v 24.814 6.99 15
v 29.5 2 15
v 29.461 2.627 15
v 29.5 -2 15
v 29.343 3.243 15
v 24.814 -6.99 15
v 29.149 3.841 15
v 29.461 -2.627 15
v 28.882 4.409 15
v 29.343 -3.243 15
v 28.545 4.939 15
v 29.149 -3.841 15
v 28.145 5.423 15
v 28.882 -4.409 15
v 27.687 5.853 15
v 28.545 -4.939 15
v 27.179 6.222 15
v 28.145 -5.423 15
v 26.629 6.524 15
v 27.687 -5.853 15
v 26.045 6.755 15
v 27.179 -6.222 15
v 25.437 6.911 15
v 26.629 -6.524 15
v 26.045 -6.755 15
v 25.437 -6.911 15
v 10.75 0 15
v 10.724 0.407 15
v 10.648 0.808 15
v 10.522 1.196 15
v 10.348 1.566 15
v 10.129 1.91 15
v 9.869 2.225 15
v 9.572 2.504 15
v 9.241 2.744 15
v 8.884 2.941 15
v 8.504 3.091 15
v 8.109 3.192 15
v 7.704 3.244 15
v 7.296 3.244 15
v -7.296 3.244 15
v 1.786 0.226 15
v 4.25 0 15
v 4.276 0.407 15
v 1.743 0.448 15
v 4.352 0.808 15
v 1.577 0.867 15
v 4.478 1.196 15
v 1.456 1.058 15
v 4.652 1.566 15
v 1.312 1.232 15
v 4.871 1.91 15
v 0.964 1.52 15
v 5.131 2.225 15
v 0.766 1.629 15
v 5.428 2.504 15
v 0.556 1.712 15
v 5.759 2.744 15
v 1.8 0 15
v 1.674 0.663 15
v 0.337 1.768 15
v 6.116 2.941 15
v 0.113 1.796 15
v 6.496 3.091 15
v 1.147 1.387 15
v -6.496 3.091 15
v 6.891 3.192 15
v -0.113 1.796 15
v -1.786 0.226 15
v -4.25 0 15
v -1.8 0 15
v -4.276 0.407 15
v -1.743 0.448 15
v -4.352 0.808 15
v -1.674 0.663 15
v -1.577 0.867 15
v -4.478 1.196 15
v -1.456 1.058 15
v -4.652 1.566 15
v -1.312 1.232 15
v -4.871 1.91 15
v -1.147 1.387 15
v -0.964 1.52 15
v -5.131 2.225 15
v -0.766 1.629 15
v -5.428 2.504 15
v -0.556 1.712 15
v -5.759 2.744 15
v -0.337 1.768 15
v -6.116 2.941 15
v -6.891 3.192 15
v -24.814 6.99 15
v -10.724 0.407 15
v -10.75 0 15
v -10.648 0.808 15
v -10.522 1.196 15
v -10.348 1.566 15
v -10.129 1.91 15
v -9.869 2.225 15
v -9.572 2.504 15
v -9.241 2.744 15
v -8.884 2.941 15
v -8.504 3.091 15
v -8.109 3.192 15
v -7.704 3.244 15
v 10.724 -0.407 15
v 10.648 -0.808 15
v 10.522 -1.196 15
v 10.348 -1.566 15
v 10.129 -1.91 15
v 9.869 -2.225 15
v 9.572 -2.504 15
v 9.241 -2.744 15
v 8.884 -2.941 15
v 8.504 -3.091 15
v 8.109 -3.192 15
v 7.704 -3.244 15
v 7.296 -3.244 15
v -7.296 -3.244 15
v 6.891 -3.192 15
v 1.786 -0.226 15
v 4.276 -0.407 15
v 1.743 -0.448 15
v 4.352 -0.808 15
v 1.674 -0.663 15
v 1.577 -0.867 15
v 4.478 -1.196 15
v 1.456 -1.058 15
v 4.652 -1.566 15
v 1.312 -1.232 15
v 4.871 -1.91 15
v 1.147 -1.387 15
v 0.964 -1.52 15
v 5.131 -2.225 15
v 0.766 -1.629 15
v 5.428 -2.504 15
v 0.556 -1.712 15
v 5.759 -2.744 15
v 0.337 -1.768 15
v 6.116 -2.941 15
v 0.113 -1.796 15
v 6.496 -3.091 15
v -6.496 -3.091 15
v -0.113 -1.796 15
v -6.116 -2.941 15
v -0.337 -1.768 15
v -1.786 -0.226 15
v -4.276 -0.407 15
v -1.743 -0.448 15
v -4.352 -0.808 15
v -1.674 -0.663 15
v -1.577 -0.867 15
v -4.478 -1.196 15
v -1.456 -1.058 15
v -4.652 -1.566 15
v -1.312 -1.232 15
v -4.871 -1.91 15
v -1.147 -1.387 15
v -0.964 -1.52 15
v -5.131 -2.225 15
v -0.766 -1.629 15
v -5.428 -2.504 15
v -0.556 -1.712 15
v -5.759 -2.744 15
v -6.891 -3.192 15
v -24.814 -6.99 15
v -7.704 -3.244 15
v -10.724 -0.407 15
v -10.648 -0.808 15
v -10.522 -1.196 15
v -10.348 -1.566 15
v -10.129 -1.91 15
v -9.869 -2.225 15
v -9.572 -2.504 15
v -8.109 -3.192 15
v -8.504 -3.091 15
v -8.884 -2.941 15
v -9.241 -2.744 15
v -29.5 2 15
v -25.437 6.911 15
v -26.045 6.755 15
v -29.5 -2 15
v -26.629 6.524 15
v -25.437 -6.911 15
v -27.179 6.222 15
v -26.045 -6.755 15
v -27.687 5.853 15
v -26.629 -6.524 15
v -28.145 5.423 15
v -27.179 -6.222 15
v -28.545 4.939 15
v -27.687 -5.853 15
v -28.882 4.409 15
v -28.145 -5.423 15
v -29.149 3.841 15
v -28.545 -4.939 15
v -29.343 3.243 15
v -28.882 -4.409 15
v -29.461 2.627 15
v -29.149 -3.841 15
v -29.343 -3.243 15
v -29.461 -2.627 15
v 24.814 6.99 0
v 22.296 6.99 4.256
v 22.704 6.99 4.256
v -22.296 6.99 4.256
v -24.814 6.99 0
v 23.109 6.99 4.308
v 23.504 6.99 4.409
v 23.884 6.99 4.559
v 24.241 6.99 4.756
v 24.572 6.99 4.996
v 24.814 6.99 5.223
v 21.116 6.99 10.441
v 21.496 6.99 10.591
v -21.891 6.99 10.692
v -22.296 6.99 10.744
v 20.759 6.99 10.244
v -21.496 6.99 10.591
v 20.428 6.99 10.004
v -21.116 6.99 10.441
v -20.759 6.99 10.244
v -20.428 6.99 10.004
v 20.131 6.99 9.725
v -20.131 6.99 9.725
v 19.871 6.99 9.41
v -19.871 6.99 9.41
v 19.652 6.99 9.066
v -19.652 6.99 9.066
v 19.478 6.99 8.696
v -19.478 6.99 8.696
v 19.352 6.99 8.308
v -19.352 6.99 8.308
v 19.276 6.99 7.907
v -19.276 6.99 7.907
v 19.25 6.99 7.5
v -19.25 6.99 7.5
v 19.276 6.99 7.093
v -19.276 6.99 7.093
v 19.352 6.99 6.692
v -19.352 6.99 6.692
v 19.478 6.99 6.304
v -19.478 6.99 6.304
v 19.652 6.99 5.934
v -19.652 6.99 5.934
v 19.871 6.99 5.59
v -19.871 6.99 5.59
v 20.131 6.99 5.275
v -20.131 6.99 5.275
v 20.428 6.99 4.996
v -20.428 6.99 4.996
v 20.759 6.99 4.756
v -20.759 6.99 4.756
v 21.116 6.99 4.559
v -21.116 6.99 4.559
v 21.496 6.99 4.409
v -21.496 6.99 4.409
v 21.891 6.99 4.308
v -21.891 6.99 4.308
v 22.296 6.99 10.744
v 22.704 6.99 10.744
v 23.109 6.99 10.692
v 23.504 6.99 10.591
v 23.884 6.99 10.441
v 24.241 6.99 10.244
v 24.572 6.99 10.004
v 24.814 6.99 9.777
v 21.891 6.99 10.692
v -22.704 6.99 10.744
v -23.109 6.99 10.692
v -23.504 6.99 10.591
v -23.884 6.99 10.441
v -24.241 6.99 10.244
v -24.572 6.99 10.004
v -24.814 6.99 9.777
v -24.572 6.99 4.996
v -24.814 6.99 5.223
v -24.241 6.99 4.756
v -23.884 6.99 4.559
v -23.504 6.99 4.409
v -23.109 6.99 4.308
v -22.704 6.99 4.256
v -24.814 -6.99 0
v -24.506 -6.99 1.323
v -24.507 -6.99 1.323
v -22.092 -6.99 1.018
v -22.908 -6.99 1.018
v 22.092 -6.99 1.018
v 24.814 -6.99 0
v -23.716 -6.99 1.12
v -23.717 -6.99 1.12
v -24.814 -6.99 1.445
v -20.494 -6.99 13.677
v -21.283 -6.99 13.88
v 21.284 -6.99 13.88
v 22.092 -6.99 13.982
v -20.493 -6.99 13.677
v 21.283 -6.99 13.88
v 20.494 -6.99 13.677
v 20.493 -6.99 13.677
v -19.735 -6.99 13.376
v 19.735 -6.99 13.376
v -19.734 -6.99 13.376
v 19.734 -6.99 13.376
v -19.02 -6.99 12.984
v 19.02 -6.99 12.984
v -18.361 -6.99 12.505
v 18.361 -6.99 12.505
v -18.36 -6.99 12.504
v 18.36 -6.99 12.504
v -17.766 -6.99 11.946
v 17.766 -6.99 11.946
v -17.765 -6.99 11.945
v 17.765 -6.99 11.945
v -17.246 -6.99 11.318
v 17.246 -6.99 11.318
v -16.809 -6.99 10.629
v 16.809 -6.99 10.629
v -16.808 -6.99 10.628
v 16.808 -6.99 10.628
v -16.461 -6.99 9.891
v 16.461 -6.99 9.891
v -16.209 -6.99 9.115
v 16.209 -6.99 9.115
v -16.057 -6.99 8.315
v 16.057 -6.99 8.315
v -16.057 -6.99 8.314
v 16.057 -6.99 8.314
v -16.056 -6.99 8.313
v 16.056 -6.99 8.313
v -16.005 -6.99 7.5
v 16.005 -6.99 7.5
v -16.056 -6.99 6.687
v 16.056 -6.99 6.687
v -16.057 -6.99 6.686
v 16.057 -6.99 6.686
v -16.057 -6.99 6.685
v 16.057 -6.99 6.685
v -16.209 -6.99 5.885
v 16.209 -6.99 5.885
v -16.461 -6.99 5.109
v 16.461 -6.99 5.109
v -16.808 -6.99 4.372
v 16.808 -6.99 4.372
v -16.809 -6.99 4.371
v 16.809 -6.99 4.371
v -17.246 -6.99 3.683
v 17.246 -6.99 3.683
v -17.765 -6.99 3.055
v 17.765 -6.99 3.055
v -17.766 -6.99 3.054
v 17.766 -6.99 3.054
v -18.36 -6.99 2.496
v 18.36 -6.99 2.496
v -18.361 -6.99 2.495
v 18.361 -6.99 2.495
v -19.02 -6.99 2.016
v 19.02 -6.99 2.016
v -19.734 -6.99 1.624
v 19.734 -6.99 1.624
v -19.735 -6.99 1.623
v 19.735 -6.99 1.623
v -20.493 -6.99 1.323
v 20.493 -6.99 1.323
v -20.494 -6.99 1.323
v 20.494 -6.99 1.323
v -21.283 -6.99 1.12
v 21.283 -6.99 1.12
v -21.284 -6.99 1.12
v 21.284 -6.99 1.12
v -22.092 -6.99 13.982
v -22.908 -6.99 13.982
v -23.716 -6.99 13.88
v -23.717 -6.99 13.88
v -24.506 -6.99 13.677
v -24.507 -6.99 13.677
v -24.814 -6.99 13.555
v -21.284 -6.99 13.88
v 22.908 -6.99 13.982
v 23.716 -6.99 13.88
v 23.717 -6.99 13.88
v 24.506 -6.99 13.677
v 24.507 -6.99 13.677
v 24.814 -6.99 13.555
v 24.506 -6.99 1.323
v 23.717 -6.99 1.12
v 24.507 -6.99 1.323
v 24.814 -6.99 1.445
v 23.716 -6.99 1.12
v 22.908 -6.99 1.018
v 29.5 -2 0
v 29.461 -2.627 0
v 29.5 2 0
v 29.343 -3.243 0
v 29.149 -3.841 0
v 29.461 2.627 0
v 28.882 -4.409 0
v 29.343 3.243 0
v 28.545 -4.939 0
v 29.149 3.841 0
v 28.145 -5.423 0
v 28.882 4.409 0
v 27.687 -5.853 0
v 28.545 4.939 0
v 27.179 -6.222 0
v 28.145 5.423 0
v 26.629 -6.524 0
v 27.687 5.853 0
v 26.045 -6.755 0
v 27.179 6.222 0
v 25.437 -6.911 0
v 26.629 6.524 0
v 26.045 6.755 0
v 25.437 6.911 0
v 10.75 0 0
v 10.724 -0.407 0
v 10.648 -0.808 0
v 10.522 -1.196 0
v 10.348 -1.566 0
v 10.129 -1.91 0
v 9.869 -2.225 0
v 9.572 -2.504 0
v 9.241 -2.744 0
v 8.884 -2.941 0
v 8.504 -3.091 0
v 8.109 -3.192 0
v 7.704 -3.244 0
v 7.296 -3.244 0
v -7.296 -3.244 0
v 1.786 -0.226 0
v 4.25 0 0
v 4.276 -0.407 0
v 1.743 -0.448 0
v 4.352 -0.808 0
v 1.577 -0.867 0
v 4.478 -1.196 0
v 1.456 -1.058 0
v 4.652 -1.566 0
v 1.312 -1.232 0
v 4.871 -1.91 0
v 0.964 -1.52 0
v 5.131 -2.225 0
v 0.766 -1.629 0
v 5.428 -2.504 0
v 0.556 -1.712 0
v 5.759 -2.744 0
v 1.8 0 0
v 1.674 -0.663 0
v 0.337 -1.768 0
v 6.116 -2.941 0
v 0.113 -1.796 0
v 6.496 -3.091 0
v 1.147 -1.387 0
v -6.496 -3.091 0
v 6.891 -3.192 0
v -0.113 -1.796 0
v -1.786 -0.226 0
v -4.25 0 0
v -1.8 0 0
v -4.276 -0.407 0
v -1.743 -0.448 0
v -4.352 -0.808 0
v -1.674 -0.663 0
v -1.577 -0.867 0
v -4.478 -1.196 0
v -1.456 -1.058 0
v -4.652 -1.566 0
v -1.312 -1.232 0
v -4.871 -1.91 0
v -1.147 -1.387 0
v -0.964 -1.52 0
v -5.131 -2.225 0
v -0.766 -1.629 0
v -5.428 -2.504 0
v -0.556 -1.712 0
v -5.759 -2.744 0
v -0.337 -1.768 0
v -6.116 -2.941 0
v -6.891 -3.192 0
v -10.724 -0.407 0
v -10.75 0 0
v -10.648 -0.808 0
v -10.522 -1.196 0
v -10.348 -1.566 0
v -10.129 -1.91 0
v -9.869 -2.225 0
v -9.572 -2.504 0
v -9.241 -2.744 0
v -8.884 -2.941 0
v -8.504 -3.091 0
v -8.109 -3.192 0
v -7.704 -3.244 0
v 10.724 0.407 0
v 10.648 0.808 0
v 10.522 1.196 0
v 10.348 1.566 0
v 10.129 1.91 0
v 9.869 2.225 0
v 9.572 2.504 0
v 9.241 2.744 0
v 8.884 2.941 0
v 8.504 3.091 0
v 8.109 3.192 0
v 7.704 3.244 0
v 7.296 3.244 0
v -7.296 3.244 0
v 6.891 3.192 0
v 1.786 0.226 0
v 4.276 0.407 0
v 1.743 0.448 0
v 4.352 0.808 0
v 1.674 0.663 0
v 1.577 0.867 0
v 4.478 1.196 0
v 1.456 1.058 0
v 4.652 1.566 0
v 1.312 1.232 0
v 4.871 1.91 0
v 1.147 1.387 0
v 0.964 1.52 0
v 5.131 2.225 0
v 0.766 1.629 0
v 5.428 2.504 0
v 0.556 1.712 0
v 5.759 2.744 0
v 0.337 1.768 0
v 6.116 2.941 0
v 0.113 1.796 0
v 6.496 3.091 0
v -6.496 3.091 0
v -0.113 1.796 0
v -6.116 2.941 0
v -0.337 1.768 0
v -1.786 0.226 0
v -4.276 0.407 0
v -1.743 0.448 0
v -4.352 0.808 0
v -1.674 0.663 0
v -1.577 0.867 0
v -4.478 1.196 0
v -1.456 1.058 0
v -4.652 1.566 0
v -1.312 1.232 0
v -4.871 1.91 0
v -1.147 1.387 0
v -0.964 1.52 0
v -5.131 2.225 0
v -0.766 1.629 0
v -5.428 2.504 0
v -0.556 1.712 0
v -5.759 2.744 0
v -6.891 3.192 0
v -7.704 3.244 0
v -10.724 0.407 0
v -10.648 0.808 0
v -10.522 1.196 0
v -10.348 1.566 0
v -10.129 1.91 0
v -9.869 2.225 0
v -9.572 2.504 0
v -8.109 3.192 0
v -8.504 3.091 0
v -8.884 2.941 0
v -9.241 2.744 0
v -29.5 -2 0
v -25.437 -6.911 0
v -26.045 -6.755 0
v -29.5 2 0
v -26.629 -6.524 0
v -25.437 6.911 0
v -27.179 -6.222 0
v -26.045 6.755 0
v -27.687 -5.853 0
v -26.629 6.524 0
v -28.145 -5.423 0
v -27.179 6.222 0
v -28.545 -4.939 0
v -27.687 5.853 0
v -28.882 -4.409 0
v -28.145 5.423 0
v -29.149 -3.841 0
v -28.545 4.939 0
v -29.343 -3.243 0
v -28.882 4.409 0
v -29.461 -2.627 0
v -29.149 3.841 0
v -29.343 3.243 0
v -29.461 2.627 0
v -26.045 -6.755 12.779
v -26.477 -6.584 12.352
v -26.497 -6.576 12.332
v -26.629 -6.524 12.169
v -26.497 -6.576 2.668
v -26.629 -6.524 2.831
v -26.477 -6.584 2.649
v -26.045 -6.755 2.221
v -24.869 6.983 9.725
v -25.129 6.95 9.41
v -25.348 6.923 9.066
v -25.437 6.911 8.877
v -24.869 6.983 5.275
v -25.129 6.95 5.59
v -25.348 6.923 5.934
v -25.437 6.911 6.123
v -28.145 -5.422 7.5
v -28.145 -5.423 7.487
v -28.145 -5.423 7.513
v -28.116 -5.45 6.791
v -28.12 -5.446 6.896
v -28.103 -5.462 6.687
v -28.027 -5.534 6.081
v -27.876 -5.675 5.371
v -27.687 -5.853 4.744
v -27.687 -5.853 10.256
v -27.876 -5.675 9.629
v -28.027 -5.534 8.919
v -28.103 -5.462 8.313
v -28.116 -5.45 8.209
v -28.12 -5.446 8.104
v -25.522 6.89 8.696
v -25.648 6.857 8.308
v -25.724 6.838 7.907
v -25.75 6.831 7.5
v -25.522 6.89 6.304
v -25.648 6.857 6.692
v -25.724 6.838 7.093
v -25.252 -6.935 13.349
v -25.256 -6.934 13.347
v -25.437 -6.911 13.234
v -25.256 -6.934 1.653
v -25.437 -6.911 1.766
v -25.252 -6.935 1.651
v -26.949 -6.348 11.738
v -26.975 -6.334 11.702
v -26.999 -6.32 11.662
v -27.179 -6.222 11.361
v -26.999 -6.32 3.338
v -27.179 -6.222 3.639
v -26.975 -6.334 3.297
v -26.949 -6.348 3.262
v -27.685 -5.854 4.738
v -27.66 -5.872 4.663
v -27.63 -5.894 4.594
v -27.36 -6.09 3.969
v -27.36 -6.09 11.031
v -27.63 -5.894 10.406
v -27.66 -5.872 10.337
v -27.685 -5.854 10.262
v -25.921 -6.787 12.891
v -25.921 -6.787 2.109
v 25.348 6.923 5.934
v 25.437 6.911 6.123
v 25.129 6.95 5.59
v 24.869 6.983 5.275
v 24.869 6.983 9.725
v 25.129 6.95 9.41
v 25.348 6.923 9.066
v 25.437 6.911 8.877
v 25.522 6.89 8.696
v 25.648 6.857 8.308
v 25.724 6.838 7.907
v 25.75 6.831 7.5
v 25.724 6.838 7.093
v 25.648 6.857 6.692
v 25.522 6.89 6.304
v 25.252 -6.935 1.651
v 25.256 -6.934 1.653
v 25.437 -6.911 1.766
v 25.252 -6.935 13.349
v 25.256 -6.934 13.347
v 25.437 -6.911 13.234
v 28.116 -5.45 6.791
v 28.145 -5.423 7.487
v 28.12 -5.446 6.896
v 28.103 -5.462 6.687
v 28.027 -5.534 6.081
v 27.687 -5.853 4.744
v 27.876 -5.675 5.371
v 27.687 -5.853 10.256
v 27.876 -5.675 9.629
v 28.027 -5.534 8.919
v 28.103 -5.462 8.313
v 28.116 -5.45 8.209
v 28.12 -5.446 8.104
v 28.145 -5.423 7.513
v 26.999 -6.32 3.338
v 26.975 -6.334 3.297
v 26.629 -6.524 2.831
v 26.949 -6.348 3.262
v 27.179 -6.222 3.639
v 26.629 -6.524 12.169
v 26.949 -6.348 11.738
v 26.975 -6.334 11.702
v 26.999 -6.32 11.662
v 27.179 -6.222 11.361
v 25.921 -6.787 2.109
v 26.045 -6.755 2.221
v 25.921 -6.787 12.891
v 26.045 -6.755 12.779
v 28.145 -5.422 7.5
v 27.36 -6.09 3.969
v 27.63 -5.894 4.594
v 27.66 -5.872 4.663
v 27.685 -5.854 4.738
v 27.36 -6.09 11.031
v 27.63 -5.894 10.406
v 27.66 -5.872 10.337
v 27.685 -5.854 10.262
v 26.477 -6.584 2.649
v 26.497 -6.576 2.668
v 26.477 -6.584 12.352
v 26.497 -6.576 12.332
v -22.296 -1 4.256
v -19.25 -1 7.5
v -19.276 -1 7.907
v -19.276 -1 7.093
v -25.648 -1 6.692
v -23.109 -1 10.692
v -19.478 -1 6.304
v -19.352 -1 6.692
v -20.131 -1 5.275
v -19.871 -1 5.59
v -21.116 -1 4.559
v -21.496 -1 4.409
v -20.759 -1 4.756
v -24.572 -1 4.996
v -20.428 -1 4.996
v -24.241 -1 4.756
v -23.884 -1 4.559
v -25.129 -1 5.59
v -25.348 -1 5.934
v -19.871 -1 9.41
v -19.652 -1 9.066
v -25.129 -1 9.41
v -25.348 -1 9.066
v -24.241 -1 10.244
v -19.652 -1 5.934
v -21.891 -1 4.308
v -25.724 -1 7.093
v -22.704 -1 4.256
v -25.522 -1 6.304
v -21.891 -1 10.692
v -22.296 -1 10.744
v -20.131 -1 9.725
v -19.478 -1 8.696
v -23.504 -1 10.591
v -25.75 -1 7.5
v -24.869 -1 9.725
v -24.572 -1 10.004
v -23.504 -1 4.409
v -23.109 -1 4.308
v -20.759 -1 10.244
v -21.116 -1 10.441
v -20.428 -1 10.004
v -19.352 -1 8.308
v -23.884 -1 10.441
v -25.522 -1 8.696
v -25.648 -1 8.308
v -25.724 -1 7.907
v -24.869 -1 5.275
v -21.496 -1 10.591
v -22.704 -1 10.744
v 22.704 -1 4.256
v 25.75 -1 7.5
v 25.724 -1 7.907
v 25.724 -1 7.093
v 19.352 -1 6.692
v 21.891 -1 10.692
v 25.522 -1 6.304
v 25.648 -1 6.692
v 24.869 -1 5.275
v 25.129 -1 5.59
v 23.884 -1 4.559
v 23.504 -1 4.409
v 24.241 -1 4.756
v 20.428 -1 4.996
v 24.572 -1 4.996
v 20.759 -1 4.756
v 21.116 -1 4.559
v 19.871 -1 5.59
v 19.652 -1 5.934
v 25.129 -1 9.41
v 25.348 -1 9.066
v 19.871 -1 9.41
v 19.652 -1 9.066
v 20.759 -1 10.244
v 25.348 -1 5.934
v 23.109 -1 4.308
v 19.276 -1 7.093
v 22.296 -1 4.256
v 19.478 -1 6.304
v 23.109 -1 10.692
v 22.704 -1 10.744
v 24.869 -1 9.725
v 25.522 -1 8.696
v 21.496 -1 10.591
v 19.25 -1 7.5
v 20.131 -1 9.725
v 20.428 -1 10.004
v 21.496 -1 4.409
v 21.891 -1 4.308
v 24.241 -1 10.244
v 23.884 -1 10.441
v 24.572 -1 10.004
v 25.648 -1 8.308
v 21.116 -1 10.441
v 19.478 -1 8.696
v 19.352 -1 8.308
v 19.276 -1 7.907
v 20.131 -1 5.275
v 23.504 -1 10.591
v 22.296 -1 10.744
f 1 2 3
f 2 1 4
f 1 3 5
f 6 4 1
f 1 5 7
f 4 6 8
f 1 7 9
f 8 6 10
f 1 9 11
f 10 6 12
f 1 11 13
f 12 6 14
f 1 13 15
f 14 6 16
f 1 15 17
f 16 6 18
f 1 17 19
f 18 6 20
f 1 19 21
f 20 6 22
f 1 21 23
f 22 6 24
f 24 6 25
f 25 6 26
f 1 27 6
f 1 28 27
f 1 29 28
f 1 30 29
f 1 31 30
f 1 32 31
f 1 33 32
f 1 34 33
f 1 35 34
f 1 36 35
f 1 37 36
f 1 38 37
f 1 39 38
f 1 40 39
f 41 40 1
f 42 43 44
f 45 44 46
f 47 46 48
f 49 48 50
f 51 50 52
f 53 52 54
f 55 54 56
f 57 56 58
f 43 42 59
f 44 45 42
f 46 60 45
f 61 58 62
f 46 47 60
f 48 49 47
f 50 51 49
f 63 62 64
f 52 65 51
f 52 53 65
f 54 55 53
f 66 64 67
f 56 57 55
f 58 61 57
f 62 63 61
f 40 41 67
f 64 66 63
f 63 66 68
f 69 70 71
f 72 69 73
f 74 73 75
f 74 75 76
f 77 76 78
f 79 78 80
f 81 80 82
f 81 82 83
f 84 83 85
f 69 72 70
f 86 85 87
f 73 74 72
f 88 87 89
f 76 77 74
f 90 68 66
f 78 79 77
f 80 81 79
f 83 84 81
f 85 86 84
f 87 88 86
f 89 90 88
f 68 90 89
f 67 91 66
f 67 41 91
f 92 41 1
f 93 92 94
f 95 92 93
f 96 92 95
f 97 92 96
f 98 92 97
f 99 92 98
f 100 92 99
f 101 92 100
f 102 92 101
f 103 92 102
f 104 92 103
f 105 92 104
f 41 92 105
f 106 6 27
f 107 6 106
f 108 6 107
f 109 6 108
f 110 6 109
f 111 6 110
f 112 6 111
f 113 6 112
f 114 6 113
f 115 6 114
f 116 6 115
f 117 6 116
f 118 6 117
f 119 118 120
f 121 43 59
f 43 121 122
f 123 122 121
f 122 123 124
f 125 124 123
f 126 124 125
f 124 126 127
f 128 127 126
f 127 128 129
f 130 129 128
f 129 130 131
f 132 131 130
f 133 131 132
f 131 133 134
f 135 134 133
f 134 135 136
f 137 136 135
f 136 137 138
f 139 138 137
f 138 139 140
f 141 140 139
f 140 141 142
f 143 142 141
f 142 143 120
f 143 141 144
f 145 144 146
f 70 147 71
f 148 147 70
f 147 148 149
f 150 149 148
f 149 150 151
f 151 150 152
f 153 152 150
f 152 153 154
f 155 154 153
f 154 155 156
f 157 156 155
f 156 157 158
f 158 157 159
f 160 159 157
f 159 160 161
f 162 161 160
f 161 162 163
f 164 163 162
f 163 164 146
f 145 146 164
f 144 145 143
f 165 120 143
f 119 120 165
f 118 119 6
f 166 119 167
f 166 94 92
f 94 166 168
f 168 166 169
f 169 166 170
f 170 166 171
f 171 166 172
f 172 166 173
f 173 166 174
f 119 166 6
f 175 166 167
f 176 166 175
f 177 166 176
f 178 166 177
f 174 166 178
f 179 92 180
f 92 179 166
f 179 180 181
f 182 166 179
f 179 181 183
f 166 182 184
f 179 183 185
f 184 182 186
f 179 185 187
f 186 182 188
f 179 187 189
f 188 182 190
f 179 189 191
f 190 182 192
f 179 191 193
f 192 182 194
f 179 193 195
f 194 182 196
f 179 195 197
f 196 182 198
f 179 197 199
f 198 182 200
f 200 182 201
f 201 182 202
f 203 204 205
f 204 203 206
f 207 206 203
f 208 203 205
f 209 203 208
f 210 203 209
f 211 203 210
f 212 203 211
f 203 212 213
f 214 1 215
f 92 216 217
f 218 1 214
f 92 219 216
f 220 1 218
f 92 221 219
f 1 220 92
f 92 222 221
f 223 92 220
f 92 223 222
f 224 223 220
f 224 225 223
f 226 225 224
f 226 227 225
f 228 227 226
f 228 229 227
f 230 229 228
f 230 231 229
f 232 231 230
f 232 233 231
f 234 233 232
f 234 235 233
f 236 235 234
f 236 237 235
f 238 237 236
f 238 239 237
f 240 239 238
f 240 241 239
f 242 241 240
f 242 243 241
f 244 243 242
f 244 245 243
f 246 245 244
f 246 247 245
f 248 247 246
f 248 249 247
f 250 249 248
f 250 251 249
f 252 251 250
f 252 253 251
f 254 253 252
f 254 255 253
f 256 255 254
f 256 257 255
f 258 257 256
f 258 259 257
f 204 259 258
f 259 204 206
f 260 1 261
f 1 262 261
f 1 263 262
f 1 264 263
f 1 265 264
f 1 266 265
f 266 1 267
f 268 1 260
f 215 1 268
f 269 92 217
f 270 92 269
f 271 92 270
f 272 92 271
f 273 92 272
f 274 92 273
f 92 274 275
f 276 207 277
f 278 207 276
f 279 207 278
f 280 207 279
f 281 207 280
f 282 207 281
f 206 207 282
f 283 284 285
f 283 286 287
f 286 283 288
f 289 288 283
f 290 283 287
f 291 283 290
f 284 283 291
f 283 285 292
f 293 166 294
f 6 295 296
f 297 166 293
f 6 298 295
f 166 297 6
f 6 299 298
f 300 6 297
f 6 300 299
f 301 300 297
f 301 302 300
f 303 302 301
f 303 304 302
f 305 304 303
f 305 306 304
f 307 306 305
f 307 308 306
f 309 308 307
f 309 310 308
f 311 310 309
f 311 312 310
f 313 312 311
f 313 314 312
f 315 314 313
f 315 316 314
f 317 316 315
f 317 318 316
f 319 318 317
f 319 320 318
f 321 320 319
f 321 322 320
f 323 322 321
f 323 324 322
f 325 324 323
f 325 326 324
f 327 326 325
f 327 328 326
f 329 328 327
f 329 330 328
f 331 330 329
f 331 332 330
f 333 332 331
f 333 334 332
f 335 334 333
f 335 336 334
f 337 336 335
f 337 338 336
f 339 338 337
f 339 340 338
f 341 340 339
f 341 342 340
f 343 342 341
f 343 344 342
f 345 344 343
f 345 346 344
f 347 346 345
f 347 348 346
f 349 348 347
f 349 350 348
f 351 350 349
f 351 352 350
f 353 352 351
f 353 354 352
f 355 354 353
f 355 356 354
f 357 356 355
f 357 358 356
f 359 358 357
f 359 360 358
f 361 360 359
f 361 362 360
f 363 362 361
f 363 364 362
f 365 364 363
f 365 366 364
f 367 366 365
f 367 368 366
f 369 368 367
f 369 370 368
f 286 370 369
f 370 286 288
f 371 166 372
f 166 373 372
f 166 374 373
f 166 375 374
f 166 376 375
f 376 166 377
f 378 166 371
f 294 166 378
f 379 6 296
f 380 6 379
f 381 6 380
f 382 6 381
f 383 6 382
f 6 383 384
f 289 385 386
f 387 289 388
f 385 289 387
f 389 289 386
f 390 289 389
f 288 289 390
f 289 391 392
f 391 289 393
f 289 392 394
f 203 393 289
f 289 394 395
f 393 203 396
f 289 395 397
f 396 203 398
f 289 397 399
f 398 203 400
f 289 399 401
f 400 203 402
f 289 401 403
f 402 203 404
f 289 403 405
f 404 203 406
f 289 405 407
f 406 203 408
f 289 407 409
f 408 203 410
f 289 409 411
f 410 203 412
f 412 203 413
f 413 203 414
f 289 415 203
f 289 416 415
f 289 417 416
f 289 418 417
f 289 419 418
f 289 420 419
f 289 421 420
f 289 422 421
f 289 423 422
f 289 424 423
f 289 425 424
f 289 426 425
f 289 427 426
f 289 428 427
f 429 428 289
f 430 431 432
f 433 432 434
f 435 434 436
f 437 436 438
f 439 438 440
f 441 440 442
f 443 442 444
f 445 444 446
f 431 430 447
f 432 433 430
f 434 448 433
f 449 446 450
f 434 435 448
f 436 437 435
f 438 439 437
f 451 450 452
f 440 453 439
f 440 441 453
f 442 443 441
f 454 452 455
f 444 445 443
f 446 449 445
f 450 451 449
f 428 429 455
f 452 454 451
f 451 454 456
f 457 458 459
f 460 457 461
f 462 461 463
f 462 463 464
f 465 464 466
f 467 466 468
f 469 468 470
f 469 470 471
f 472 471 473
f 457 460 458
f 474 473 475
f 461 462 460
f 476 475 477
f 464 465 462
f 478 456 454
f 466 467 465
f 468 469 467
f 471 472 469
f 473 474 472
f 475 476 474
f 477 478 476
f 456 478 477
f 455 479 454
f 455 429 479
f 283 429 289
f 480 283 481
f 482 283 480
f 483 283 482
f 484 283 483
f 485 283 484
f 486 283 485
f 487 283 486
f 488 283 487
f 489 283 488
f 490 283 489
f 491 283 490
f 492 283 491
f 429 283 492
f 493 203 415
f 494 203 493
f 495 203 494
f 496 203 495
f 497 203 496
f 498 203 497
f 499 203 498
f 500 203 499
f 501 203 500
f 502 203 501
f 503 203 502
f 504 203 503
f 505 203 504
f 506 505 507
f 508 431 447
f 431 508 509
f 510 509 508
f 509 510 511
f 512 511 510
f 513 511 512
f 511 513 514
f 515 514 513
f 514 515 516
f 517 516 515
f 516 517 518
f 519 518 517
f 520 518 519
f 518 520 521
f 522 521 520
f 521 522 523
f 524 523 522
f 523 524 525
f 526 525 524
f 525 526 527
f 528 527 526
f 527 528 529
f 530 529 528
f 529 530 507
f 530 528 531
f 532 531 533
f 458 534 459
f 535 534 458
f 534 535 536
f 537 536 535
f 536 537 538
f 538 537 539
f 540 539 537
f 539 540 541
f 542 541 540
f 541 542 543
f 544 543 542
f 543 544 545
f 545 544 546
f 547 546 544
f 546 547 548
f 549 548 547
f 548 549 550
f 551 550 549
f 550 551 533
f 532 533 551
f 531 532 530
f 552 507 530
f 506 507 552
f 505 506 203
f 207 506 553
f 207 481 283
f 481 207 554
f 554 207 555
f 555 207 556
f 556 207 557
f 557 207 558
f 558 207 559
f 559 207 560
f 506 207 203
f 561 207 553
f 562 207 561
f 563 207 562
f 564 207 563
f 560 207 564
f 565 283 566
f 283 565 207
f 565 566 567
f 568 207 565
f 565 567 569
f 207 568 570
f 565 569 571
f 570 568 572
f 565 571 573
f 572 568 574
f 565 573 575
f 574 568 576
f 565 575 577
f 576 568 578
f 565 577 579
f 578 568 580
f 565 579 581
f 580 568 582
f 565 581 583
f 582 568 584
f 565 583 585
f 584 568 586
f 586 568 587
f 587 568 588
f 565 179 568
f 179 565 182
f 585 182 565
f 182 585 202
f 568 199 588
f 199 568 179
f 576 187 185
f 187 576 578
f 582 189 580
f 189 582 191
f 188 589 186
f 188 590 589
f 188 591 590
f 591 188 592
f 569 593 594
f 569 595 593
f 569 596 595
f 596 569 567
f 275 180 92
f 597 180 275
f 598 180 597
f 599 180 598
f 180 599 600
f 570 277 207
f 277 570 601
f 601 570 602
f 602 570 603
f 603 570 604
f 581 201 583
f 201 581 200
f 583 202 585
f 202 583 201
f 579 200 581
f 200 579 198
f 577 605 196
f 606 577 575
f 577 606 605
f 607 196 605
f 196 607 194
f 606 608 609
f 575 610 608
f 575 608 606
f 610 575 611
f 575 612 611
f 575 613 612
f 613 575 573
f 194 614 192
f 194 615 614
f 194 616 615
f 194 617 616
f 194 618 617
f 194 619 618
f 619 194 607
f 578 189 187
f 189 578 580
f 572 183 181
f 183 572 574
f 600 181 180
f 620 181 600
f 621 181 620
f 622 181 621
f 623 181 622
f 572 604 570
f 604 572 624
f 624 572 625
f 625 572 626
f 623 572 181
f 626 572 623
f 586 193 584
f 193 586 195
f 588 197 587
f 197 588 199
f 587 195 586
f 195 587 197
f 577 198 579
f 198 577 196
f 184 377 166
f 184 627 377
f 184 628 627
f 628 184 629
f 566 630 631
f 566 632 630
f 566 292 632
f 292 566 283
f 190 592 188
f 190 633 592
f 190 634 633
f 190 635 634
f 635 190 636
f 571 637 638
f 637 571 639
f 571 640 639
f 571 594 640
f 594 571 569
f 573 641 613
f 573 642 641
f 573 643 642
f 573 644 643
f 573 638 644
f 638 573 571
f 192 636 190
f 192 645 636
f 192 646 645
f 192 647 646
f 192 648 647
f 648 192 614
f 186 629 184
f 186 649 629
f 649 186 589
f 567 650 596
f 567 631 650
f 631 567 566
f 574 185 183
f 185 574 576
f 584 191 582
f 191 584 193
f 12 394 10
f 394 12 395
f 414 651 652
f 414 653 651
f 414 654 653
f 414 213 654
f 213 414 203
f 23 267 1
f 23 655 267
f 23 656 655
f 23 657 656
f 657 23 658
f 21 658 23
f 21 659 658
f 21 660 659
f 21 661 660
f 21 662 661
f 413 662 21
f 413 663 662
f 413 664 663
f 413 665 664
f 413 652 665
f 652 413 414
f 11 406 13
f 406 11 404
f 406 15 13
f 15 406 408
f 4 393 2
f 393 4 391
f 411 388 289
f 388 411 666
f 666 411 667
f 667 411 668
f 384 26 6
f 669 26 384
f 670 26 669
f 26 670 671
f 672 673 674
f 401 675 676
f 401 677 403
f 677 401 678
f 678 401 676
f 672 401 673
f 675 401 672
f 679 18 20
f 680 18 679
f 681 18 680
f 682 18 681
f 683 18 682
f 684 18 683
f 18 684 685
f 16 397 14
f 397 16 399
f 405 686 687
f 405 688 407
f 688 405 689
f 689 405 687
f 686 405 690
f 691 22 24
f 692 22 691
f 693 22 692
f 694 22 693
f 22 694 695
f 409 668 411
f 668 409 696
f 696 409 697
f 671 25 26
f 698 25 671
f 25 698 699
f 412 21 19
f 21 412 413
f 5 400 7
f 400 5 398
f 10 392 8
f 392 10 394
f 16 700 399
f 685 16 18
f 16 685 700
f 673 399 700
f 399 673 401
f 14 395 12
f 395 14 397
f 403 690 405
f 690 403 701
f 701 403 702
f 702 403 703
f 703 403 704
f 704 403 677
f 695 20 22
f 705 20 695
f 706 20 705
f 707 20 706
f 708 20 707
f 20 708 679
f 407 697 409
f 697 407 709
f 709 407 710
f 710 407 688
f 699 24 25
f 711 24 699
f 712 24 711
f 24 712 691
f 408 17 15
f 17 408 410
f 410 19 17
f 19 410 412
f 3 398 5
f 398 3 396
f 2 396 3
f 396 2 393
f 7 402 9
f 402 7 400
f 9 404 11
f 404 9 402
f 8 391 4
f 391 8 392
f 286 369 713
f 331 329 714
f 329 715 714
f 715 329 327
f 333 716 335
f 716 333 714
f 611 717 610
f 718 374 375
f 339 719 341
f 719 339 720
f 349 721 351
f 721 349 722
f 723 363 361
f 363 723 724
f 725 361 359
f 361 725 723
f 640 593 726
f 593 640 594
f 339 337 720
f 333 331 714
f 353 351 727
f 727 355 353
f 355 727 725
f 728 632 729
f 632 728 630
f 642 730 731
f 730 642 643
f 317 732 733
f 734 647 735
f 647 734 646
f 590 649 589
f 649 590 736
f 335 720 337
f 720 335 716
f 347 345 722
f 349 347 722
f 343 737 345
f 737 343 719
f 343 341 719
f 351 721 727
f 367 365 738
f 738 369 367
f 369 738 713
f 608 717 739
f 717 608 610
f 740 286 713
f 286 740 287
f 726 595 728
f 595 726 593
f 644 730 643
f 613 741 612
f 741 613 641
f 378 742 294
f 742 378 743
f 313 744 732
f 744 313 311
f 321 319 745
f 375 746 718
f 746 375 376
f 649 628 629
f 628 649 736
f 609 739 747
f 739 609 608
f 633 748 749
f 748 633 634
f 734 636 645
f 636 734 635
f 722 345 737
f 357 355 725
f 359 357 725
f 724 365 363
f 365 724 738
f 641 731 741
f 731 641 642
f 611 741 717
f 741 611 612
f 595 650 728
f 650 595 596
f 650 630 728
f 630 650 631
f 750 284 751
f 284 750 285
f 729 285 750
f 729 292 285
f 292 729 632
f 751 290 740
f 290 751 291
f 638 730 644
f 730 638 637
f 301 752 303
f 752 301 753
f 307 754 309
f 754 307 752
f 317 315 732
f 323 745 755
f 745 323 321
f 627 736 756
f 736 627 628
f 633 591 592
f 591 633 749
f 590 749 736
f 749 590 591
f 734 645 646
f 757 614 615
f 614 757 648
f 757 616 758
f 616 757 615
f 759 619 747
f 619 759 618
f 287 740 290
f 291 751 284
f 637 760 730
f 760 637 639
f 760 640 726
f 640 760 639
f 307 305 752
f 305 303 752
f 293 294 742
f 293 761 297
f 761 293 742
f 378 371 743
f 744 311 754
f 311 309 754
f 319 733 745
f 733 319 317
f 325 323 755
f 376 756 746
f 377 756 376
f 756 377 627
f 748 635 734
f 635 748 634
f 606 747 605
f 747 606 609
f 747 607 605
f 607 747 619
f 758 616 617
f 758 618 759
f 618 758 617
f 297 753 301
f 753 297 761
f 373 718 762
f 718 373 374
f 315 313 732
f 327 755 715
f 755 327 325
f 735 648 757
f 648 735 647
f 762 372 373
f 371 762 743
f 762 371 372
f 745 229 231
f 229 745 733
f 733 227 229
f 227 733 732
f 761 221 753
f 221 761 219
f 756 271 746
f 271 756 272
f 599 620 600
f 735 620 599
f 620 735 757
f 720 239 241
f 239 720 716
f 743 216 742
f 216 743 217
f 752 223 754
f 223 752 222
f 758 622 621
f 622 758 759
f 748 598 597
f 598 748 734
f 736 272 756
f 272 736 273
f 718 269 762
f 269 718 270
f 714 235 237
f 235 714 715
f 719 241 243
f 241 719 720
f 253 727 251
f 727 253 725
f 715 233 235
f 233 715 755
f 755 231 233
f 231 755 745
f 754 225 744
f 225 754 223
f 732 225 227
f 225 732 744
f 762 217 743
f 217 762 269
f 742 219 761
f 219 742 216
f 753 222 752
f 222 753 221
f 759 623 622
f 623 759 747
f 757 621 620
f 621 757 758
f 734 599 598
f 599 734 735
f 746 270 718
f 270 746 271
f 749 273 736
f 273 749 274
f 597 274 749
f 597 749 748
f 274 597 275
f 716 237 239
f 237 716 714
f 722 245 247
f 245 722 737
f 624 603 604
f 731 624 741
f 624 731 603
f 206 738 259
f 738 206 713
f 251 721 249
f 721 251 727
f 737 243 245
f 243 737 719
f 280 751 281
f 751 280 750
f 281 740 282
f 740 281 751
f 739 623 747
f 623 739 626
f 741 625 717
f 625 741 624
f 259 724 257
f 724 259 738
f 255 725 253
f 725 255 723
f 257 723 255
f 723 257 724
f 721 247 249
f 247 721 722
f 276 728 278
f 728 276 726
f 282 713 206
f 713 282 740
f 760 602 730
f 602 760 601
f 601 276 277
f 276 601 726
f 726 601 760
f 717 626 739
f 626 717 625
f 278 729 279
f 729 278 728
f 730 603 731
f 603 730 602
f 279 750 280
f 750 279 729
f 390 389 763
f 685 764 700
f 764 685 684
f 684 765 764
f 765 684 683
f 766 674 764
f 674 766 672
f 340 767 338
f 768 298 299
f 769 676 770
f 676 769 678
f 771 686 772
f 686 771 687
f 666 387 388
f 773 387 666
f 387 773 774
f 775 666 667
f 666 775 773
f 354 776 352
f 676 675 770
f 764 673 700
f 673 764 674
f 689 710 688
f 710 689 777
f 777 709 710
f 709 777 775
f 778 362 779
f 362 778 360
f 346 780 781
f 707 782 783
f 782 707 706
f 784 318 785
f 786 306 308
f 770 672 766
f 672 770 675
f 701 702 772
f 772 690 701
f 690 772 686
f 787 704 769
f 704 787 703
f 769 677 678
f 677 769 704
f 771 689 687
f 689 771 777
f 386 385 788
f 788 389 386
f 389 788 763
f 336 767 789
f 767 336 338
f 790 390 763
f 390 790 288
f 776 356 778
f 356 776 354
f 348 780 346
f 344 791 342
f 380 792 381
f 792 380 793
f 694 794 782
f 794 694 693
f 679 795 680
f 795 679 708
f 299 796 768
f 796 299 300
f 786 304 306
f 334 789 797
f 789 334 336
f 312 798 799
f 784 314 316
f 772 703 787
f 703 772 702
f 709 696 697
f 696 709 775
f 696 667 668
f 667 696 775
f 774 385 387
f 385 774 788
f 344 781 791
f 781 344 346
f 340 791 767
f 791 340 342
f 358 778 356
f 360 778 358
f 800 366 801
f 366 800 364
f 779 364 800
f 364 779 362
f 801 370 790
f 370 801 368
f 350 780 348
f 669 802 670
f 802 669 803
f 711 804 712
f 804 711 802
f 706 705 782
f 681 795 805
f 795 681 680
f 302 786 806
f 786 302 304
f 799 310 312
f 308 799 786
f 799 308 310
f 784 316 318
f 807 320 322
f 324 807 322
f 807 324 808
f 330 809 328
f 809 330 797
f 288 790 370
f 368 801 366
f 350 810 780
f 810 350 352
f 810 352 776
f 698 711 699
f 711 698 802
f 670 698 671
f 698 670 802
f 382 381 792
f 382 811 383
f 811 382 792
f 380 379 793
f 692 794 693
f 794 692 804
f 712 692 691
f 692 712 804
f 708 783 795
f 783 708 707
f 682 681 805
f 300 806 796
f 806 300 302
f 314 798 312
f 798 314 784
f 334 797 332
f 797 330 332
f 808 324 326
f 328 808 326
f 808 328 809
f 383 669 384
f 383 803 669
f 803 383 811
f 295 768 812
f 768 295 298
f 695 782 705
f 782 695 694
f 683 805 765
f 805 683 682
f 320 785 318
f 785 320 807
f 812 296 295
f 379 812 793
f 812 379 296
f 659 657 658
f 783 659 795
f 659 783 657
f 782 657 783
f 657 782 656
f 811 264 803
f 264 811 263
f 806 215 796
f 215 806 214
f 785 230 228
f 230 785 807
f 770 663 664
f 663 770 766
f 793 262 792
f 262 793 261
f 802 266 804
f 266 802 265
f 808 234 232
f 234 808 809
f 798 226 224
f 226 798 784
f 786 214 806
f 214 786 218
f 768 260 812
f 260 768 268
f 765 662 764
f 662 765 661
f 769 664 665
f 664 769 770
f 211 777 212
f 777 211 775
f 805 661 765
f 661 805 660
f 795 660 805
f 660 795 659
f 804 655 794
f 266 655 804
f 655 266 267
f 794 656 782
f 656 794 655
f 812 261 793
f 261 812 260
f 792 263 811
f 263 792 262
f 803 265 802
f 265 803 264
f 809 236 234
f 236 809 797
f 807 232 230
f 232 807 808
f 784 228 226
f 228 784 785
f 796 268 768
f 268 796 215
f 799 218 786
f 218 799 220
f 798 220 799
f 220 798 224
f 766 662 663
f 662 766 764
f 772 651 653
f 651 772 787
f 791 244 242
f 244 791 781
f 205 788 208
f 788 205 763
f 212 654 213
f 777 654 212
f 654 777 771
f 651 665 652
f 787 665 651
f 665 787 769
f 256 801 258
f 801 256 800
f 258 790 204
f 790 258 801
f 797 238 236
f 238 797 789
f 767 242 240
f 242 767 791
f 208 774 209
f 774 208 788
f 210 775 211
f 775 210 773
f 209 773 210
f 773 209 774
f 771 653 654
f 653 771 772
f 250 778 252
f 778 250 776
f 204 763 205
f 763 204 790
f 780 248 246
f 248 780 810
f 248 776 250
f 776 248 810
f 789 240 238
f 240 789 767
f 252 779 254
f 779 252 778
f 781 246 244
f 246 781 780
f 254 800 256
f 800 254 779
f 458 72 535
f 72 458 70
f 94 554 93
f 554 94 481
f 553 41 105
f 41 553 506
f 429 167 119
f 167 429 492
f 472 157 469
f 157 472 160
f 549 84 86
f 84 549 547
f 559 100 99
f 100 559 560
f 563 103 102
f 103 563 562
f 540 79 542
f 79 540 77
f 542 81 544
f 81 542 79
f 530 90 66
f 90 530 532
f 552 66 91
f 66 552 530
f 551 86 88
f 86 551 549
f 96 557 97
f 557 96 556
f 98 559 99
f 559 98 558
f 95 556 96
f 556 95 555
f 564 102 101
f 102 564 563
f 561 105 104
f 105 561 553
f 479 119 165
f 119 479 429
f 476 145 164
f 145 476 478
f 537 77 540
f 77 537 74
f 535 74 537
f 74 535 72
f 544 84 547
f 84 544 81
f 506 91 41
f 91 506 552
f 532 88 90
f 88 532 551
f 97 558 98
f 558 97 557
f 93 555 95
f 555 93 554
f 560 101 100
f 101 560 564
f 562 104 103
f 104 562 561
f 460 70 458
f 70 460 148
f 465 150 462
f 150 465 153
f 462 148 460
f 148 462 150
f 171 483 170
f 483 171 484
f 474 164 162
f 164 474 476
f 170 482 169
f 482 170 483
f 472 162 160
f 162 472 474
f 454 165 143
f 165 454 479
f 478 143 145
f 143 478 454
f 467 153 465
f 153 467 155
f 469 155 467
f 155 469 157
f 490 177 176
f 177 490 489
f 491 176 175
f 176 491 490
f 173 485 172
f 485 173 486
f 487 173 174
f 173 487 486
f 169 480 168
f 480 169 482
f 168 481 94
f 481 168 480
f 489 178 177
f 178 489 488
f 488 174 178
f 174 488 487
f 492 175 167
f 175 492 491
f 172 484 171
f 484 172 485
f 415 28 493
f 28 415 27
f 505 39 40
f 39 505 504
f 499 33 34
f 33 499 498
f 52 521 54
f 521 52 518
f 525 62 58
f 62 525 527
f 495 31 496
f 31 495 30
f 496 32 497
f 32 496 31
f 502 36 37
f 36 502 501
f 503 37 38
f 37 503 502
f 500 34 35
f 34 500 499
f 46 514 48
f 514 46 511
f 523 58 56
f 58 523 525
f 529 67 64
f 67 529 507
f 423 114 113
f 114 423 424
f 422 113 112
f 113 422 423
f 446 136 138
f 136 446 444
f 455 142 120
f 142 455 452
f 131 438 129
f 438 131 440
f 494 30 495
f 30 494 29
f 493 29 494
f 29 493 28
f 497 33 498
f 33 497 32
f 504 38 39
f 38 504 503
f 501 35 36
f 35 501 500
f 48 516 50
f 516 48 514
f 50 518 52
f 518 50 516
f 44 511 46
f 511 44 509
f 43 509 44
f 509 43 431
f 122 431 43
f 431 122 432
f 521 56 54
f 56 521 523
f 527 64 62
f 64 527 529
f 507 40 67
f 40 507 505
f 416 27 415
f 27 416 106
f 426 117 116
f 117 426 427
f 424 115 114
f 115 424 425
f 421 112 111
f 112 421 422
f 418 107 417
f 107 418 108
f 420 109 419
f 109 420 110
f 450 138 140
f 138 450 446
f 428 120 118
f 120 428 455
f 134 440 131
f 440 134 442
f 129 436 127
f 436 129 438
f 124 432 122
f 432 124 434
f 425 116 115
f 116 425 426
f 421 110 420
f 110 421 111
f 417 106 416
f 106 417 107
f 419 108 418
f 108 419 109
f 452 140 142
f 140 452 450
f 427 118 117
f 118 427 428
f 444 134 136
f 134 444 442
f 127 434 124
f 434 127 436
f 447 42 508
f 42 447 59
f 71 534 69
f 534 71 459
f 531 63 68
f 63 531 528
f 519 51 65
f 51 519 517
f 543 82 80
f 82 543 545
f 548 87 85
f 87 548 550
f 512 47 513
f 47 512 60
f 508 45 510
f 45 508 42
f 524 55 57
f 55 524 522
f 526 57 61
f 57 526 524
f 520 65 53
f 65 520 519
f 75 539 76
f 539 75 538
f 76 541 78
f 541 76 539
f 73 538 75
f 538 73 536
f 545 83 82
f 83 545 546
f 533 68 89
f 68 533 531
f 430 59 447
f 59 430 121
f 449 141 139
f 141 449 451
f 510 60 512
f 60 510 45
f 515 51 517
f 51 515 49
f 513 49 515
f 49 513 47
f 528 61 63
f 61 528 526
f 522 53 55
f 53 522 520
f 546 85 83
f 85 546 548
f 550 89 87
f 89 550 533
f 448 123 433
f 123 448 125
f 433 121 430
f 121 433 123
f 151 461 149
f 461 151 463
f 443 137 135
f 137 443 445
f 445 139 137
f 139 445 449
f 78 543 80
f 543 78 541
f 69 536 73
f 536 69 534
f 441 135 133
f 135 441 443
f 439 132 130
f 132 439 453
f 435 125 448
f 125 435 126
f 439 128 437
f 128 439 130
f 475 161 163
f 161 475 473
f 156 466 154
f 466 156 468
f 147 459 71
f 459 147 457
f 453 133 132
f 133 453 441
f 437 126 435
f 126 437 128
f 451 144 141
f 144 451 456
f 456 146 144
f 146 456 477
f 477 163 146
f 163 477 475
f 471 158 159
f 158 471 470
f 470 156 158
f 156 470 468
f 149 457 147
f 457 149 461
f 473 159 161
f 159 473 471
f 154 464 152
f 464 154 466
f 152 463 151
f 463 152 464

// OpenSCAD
$fn = 50;


difference() {
	union() {
		hull() {
			translate(v = [-9.5000000000, 2.0000000000, 0]) {
				cylinder(h = 15, r = 5);
			}
			translate(v = [9.5000000000, 2.0000000000, 0]) {
				cylinder(h = 15, r = 5);
			}
			translate(v = [-9.5000000000, -2.0000000000, 0]) {
				cylinder(h = 15, r = 5);
			}
			translate(v = [9.5000000000, -2.0000000000, 0]) {
				cylinder(h = 15, r = 5);
			}
		}
		translate(v = [-15.0000000000, 0.0000000000, 0]) {
			hull() {
				translate(v = [-9.5000000000, 2.0000000000, 0]) {
					cylinder(h = 15, r = 5);
				}
				translate(v = [9.5000000000, 2.0000000000, 0]) {
					cylinder(h = 15, r = 5);
				}
				translate(v = [-9.5000000000, -2.0000000000, 0]) {
					cylinder(h = 15, r = 5);
				}
				translate(v = [9.5000000000, -2.0000000000, 0]) {
					cylinder(h = 15, r = 5);
				}
			}
		}
		translate(v = [-15.0000000000, 0.0000000000, 0]) {
			hull() {
				translate(v = [-9.5000000000, 2.0000000000, 0]) {
					cylinder(h = 15, r = 5);
				}
				translate(v = [9.5000000000, 2.0000000000, 0]) {
					cylinder(h = 15, r = 5);
				}
				translate(v = [-9.5000000000, -2.0000000000, 0]) {
					cylinder(h = 15, r = 5);
				}
				translate(v = [9.5000000000, -2.0000000000, 0]) {
					cylinder(h = 15, r = 5);
				}
			}
		}
		translate(v = [15.0000000000, 0.0000000000, 0]) {
			hull() {
				translate(v = [-9.5000000000, 2.0000000000, 0]) {
					cylinder(h = 15, r = 5);
				}
				translate(v = [9.5000000000, 2.0000000000, 0]) {
					cylinder(h = 15, r = 5);
				}
				translate(v = [-9.5000000000, -2.0000000000, 0]) {
					cylinder(h = 15, r = 5);
				}
				translate(v = [9.5000000000, -2.0000000000, 0]) {
					cylinder(h = 15, r = 5);
				}
			}
		}
		translate(v = [15.0000000000, 0.0000000000, 0]) {
			hull() {
				translate(v = [-9.5000000000, 2.0000000000, 0]) {
					cylinder(h = 15, r = 5);
				}
				translate(v = [9.5000000000, 2.0000000000, 0]) {
					cylinder(h = 15, r = 5);
				}
				translate(v = [-9.5000000000, -2.0000000000, 0]) {
					cylinder(h = 15, r = 5);
				}
				translate(v = [9.5000000000, -2.0000000000, 0]) {
					cylinder(h = 15, r = 5);
				}
			}
		}
	}
	union() {
		translate(v = [-22.5000000000, -7.0000000000, 7.5000000000]) {
			rotate(a = [90, 0, 0]) {
				difference() {
					union() {
						#translate(v = [0, 0, -14.0000000000]) {
							cylinder(h = 14, r = 2.2500000000);
						}
						#translate(v = [0, 0, -6]) {
							cylinder(h = 6, r1 = 3.2500000000, r2 = 6.5000000000);
						}
						#translate(v = [0, 0, -14.0000000000]) {
							cylinder(h = 14, r = 3.2500000000);
						}
						#translate(v = [0, 0, -14.0000000000]) {
							cylinder(h = 14, r = 2.2500000000);
						}
					}
					union();
				}
			}
		}
		translate(v = [22.5000000000, -7.0000000000, 7.5000000000]) {
			rotate(a = [90, 0, 0]) {
				difference() {
					union() {
						#translate(v = [0, 0, -14.0000000000]) {
							cylinder(h = 14, r = 2.2500000000);
						}
						#translate(v = [0, 0, -6]) {
							cylinder(h = 6, r1 = 3.2500000000, r2 = 6.5000000000);
						}
						#translate(v = [0, 0, -14.0000000000]) {
							cylinder(h = 14, r = 3.2500000000);
						}
						#translate(v = [0, 0, -14.0000000000]) {
							cylinder(h = 14, r = 2.2500000000);
						}
					}
					union();
				}
			}
		}
		translate(v = [-7.5000000000, 0.0000000000, 0]) {
			translate(v = [0, 0, -100]) {
				cylinder(h = 200, r = 3.2500000000);
			}
		}
		translate(v = [7.5000000000, 0.0000000000, 0]) {
			translate(v = [0, 0, -100]) {
				cylinder(h = 200, r = 3.2500000000);
			}
		}
		translate(v = [-7.5000000000, 0.0000000000, 0]) {
			translate(v = [0, 0, -100]) {
				cylinder(h = 200, r = 1.8000000000);
			}
		}
		translate(v = [0, 0, -100]) {
			cylinder(h = 200, r = 1.8000000000);
		}
		translate(v = [7.5000000000, 0.0000000000, 0]) {
			translate(v = [0, 0, -100]) {
				cylinder(h = 200, r = 1.8000000000);
			}
		}
	}
}
